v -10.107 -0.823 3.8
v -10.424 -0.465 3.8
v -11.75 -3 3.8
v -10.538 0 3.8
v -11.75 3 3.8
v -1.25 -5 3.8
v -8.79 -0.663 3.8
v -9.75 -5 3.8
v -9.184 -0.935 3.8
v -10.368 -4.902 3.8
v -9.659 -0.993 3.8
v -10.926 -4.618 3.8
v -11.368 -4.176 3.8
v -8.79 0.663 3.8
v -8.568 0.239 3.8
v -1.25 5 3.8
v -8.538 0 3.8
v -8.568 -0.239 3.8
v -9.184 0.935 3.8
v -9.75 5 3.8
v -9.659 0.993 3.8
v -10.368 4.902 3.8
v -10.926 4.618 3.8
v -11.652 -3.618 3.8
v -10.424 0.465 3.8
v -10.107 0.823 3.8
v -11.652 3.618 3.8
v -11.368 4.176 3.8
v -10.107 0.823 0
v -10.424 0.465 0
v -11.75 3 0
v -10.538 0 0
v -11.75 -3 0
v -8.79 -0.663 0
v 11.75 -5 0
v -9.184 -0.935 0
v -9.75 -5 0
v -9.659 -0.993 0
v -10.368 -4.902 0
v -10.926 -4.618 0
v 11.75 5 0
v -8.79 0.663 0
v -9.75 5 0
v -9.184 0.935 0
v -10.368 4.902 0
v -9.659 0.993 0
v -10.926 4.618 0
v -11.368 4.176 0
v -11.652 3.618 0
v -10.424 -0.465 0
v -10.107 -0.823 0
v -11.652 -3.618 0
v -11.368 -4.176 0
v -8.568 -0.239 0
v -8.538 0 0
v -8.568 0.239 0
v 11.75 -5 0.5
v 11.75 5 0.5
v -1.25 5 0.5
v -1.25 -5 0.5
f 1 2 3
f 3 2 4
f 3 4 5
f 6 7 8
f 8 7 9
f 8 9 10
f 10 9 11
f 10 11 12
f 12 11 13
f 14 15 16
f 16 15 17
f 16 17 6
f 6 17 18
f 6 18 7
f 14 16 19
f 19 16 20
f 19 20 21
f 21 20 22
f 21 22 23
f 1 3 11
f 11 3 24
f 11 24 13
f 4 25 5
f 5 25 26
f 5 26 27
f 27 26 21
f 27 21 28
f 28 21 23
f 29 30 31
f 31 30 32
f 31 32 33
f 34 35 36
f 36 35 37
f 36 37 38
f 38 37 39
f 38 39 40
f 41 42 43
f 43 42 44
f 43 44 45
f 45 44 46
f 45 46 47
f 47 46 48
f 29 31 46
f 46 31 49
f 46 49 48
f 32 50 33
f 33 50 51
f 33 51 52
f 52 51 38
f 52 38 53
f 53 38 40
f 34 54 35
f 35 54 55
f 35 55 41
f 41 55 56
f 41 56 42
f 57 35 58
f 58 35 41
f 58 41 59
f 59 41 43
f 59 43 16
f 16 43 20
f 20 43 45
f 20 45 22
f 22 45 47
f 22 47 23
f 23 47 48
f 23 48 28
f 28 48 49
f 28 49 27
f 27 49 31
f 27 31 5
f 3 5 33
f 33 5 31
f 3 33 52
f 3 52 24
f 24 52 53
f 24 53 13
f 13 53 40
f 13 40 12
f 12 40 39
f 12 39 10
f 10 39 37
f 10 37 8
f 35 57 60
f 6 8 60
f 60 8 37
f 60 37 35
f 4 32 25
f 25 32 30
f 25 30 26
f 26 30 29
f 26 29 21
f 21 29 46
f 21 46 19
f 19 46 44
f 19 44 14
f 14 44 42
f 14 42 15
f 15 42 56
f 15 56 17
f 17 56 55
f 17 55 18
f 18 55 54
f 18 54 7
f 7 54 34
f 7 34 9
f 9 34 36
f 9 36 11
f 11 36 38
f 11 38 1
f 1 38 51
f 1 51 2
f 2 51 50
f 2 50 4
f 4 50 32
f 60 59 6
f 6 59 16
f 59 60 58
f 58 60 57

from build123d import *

# Parameters (mm, degrees)
SKETCH_1_R          = 1
EXTRUDE_1_DEPTH     = 3.8
SKETCH_2_W          = 13
SKETCH_2_H          = 10
CUT_EXTRUDE_1_DEPTH = 3.3


with BuildPart() as part:
    # Эскиз1 → Бобышка-Вытянуть1 (new body)
    with BuildSketch(Plane.XY):
        with BuildLine():
            Line((-9.75, 5), (11.75, 5))
            Line((11.75, 5), (11.75, -5))
            Line((11.75, -5), (-9.75, -5))
            ThreePointArc((-9.75, -5), (-11.164213562, -4.414213562), (-11.75, -3))
            Line((-11.75, -3), (-11.75, 3))
            ThreePointArc((-11.75, 3), (-11.164213562, 4.414213562), (-9.75, 5))
        make_face()
        with Locations((-9.538461538, 0)):
            Circle(SKETCH_1_R, mode=Mode.SUBTRACT)
    extrude(amount=EXTRUDE_1_DEPTH)

    # Эскиз2 → Вырез-Вытянуть1 (cut)
    with BuildSketch(Plane.XY.offset(3.8)):
        with Locations((5.25, 0)):
            Rectangle(SKETCH_2_W, SKETCH_2_H)
    extrude(amount=-CUT_EXTRUDE_1_DEPTH, mode=Mode.SUBTRACT)


solid = part.part
